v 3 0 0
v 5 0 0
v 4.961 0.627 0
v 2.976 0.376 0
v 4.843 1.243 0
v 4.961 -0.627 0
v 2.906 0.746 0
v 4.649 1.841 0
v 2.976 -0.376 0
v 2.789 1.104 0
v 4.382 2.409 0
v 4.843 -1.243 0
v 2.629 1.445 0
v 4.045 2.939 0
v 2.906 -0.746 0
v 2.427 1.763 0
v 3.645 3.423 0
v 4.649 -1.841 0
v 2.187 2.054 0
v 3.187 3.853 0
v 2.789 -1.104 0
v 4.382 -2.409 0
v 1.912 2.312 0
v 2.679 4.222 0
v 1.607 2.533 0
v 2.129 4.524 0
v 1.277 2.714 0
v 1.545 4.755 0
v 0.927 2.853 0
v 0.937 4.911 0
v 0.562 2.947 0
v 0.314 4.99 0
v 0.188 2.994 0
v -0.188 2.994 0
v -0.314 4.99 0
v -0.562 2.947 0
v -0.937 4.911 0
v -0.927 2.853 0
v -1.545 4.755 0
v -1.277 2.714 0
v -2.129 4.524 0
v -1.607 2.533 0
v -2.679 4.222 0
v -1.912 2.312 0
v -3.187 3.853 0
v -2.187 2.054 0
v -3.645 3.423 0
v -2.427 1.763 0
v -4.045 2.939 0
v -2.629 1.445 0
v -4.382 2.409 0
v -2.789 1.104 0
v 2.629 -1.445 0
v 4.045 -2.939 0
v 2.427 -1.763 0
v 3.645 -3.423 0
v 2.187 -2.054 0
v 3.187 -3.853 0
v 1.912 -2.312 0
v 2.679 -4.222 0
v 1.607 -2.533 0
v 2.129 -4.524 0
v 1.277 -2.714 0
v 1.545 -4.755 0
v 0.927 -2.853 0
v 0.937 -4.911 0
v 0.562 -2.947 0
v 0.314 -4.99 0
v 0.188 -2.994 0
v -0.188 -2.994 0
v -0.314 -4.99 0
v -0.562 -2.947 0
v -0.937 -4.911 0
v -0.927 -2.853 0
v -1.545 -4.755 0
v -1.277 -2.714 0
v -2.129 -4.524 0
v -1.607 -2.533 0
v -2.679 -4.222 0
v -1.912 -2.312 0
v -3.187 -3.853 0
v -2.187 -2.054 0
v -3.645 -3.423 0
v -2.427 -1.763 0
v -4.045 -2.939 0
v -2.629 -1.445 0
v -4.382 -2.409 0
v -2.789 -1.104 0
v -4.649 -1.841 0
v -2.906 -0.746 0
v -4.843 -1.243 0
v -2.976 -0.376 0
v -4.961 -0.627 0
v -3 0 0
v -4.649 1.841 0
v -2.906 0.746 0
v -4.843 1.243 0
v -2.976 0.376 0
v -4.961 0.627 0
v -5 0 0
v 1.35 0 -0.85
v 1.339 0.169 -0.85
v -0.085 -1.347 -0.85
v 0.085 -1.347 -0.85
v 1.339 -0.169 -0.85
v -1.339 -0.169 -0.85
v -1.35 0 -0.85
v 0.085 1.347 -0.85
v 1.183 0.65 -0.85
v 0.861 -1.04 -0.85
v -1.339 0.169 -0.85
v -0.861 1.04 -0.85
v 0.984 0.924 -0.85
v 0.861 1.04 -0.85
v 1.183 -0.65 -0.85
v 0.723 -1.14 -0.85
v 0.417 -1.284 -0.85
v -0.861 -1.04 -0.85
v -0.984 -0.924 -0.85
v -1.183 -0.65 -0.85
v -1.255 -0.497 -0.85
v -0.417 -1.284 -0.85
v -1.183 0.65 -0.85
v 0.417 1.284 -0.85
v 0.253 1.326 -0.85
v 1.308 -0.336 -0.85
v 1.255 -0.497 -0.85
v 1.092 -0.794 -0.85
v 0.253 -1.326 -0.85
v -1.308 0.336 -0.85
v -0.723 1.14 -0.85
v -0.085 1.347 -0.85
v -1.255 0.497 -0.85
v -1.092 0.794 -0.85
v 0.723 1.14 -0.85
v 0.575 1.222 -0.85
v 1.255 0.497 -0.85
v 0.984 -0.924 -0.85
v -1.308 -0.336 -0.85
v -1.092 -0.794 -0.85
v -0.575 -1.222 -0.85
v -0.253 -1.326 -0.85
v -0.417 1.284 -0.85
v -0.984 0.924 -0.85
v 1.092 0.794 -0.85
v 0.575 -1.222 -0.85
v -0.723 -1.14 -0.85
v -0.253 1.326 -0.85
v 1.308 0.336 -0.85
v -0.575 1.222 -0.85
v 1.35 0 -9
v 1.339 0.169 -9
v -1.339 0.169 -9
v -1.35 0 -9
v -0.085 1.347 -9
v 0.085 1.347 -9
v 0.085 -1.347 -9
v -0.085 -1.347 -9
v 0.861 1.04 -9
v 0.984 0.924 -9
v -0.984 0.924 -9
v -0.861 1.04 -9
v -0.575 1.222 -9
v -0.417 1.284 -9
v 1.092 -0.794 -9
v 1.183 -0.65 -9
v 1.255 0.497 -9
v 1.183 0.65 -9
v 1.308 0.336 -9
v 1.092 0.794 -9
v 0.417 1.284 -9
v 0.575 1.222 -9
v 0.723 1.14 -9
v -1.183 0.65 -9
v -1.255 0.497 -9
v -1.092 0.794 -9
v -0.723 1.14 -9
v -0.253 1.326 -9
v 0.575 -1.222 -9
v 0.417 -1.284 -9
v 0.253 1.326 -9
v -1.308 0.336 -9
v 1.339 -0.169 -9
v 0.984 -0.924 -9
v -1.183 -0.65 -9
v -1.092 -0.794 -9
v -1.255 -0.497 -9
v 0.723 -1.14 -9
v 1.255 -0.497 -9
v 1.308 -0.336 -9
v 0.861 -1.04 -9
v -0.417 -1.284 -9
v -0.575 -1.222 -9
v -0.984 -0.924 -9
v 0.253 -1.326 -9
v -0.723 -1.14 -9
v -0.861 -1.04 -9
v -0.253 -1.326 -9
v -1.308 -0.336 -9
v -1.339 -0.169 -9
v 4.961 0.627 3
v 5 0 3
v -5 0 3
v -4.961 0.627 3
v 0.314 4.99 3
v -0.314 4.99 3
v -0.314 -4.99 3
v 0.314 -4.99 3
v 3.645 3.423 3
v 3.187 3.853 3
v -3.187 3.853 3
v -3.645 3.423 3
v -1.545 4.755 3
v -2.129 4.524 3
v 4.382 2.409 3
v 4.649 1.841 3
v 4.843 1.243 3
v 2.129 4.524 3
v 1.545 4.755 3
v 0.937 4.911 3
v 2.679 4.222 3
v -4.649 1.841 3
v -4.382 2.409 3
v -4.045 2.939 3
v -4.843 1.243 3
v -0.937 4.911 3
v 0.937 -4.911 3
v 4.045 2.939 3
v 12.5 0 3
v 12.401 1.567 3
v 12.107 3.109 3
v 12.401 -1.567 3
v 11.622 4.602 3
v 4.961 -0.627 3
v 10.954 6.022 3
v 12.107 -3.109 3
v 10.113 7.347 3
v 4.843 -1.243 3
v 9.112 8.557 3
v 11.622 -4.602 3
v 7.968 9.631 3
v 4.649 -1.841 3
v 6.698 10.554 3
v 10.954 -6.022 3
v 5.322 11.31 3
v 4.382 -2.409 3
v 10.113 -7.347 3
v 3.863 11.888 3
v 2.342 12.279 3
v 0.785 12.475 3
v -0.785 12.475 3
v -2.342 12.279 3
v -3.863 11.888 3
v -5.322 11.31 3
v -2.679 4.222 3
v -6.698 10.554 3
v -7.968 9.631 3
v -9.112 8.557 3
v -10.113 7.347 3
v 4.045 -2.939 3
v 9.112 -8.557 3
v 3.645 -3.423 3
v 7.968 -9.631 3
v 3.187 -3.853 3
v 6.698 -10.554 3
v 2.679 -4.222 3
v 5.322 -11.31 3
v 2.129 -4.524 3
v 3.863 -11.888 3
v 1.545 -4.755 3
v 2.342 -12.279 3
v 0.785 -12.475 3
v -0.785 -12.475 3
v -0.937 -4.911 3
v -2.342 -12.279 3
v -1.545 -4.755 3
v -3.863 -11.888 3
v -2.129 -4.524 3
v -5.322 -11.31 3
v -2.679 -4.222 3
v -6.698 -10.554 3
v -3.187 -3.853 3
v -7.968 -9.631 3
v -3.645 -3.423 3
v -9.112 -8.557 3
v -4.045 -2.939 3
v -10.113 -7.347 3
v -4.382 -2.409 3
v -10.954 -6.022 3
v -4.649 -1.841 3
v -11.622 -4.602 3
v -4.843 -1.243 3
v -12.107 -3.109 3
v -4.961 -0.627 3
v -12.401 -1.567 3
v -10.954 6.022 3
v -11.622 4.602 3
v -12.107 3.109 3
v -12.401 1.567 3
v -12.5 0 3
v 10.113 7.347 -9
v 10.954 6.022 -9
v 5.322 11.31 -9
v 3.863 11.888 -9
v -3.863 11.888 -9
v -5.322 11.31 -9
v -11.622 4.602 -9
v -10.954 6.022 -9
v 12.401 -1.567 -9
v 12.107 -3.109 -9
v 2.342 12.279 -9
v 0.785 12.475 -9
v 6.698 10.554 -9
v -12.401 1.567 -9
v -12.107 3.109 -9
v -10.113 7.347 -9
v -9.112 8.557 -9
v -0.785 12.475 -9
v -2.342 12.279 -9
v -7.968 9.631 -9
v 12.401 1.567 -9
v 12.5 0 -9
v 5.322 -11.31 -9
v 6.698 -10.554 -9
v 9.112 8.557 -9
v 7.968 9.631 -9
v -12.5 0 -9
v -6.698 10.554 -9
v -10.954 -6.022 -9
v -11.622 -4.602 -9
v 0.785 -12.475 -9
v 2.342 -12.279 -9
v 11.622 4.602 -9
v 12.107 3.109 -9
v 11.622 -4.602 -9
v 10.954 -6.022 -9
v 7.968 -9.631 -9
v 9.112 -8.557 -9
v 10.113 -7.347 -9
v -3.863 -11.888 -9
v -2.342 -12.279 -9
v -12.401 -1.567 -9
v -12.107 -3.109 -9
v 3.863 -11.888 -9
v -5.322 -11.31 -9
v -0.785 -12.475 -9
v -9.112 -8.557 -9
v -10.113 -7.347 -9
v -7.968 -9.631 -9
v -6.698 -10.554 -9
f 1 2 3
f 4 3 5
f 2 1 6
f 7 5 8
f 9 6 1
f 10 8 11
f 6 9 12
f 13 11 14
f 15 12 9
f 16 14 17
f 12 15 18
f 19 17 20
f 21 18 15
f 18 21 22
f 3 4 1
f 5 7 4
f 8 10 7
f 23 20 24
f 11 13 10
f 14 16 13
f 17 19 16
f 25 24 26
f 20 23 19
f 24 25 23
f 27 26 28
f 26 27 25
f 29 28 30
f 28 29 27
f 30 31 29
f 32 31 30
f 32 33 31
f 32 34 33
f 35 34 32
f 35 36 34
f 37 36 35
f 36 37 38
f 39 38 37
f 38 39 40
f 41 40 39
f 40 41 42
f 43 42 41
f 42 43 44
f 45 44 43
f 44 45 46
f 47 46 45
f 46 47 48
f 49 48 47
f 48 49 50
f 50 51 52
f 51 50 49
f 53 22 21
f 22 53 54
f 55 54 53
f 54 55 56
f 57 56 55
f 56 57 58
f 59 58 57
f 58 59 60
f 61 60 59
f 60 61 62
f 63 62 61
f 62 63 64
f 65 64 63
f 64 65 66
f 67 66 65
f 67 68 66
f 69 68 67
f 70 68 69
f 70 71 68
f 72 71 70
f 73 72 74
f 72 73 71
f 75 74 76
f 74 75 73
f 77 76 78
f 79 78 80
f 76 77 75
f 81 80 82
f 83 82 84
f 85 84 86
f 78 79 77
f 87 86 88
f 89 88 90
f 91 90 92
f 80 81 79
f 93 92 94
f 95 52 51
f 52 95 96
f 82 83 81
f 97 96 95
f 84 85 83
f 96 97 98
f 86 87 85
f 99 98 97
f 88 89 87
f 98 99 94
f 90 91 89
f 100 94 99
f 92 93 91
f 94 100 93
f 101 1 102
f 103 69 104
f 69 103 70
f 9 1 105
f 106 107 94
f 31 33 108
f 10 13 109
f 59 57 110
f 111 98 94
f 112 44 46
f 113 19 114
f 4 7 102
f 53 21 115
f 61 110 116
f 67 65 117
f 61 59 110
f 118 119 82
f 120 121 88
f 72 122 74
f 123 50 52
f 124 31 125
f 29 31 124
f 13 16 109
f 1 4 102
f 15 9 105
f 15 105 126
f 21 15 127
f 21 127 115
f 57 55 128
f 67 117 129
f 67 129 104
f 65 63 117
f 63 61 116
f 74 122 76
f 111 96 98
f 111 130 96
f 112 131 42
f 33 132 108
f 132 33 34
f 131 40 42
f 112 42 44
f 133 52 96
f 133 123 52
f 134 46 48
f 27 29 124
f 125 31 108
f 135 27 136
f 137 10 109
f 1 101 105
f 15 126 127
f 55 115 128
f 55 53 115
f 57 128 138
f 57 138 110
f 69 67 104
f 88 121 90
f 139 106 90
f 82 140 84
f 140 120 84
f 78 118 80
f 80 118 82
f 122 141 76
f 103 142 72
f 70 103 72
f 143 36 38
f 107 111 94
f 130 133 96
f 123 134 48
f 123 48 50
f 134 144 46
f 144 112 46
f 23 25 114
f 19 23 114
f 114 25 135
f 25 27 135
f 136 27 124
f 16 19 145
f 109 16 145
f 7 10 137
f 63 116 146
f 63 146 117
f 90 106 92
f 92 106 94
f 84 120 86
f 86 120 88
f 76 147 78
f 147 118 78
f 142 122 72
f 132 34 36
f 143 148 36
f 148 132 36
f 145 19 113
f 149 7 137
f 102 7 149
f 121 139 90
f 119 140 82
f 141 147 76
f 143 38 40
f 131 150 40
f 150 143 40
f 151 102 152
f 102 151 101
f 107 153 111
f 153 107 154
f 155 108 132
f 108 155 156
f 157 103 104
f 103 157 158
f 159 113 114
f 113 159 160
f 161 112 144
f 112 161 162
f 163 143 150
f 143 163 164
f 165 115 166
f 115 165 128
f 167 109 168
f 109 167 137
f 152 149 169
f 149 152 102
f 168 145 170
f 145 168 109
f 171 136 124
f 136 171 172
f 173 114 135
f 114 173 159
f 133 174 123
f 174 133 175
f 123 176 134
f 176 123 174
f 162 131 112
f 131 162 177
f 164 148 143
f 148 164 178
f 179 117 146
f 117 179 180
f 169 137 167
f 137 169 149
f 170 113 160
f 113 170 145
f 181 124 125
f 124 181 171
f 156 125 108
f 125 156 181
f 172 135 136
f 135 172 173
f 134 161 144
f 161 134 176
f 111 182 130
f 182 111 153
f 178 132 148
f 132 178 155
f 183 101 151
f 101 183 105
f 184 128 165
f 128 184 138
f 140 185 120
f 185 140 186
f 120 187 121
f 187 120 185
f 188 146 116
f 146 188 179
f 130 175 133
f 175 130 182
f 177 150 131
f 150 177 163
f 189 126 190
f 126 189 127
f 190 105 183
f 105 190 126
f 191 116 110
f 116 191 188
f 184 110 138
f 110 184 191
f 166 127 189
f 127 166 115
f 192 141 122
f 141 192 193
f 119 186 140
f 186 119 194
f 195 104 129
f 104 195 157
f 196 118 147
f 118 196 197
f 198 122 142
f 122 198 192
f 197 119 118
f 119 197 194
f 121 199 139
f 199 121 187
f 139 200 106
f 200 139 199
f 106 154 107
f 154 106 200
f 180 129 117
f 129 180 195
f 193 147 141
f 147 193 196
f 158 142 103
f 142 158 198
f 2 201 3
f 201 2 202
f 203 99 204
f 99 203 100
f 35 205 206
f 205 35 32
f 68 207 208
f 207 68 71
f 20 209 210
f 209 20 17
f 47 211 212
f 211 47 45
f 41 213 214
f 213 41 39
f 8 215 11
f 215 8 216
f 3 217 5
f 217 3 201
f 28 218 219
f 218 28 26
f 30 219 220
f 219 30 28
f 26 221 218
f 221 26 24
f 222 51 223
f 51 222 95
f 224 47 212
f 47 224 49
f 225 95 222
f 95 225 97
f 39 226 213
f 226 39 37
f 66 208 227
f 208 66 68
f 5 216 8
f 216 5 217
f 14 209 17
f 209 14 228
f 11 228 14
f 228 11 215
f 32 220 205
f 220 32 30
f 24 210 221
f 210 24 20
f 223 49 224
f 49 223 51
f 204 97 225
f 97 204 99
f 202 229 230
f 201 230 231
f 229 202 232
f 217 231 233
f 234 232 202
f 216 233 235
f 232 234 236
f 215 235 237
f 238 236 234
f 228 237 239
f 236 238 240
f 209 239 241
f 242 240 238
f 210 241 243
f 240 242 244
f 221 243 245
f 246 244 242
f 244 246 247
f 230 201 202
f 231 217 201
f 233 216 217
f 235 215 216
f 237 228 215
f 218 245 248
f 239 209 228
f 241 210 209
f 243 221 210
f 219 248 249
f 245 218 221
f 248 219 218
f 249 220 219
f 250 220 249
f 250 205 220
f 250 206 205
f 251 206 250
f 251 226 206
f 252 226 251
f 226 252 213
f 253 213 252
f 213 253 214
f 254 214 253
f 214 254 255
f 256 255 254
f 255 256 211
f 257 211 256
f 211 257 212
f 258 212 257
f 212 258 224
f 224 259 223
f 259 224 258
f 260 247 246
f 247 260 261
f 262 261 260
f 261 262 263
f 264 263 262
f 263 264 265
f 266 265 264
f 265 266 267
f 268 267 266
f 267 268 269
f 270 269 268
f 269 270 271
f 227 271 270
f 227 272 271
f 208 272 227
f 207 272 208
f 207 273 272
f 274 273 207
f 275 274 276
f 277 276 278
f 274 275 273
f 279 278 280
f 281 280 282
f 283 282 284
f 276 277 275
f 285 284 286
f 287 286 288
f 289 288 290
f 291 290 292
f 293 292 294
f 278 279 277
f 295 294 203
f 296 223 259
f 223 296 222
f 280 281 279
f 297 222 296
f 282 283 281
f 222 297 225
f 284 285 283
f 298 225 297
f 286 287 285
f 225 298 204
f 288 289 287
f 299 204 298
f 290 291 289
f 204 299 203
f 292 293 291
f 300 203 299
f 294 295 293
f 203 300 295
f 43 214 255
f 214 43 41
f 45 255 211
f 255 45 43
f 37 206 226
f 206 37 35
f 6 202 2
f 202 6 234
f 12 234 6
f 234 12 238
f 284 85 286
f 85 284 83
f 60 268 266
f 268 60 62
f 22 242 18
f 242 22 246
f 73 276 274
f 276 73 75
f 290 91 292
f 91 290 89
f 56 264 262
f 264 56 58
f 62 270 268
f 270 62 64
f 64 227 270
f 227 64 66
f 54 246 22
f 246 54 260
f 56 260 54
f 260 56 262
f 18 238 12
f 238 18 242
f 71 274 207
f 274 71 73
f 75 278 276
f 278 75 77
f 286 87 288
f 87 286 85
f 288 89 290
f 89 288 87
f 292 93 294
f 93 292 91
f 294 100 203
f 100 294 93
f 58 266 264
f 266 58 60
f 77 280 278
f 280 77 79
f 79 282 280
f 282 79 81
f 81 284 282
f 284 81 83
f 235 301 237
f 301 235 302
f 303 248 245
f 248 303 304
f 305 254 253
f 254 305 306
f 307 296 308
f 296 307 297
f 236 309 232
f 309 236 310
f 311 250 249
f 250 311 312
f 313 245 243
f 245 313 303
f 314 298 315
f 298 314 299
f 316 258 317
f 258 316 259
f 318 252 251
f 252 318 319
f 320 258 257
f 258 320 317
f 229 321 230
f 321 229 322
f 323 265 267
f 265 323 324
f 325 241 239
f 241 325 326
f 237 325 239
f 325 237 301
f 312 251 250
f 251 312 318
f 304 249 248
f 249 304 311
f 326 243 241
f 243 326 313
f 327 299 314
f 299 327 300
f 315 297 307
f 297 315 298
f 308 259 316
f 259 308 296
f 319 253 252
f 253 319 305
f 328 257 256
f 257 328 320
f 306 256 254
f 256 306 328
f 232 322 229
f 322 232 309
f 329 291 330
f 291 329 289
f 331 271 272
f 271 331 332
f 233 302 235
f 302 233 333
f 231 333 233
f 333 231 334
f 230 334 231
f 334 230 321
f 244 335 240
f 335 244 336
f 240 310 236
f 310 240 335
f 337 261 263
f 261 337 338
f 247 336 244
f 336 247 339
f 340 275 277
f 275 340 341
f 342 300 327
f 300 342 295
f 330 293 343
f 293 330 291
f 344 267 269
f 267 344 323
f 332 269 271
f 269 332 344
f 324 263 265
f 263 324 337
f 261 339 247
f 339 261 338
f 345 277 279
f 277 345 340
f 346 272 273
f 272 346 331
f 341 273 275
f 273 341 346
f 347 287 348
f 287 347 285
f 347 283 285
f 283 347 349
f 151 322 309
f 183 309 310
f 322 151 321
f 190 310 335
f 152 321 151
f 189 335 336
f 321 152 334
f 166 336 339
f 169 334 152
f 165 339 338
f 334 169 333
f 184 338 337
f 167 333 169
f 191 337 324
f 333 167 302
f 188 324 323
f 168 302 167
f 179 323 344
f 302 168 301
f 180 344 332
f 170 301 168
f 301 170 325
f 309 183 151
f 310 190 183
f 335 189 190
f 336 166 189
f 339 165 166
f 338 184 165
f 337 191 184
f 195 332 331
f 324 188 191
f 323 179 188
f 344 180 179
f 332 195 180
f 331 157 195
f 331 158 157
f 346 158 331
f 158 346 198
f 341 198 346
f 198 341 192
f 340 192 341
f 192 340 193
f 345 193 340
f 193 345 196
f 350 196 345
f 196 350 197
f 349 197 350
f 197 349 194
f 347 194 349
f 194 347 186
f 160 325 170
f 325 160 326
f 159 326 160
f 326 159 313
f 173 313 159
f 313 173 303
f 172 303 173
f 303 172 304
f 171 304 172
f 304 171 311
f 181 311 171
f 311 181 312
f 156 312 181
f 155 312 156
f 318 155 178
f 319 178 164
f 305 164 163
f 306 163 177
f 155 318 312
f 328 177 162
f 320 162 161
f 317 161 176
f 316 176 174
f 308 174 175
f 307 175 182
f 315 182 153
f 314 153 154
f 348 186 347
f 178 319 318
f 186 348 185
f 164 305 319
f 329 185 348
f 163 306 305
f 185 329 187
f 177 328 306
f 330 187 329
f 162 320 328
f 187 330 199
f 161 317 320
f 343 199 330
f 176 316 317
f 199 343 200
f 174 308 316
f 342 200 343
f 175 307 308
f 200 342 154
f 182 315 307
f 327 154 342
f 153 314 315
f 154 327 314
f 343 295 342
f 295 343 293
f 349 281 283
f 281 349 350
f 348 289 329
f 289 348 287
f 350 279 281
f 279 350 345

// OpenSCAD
$fn = 50;


difference() {
	union() {
		translate(v = [0, 0, -9.0000000000]) {
			cylinder(h = 12, r = 12.5000000000);
		}
	}
	union() {
		translate(v = [0, 0, 0]) {
			rotate(a = [0, 0, 0]) {
				difference() {
					union() {
						translate(v = [0, 0, -12.0000000000]) {
							cylinder(h = 12, r = 1.0000000000);
						}
						translate(v = [0, 0, -0.8500000000]) {
							cylinder(h = 0.8500000000, r1 = 1.3500000000, r2 = 3.0000000000);
						}
						translate(v = [0, 0, -12.0000000000]) {
							cylinder(h = 12, r = 1.3500000000);
						}
						translate(v = [0, 0, -12.0000000000]) {
							cylinder(h = 12, r = 1.0000000000);
						}
					}
					union();
				}
			}
		}
		#cylinder(h = 3, r = 5.0000000000);
	}
}
